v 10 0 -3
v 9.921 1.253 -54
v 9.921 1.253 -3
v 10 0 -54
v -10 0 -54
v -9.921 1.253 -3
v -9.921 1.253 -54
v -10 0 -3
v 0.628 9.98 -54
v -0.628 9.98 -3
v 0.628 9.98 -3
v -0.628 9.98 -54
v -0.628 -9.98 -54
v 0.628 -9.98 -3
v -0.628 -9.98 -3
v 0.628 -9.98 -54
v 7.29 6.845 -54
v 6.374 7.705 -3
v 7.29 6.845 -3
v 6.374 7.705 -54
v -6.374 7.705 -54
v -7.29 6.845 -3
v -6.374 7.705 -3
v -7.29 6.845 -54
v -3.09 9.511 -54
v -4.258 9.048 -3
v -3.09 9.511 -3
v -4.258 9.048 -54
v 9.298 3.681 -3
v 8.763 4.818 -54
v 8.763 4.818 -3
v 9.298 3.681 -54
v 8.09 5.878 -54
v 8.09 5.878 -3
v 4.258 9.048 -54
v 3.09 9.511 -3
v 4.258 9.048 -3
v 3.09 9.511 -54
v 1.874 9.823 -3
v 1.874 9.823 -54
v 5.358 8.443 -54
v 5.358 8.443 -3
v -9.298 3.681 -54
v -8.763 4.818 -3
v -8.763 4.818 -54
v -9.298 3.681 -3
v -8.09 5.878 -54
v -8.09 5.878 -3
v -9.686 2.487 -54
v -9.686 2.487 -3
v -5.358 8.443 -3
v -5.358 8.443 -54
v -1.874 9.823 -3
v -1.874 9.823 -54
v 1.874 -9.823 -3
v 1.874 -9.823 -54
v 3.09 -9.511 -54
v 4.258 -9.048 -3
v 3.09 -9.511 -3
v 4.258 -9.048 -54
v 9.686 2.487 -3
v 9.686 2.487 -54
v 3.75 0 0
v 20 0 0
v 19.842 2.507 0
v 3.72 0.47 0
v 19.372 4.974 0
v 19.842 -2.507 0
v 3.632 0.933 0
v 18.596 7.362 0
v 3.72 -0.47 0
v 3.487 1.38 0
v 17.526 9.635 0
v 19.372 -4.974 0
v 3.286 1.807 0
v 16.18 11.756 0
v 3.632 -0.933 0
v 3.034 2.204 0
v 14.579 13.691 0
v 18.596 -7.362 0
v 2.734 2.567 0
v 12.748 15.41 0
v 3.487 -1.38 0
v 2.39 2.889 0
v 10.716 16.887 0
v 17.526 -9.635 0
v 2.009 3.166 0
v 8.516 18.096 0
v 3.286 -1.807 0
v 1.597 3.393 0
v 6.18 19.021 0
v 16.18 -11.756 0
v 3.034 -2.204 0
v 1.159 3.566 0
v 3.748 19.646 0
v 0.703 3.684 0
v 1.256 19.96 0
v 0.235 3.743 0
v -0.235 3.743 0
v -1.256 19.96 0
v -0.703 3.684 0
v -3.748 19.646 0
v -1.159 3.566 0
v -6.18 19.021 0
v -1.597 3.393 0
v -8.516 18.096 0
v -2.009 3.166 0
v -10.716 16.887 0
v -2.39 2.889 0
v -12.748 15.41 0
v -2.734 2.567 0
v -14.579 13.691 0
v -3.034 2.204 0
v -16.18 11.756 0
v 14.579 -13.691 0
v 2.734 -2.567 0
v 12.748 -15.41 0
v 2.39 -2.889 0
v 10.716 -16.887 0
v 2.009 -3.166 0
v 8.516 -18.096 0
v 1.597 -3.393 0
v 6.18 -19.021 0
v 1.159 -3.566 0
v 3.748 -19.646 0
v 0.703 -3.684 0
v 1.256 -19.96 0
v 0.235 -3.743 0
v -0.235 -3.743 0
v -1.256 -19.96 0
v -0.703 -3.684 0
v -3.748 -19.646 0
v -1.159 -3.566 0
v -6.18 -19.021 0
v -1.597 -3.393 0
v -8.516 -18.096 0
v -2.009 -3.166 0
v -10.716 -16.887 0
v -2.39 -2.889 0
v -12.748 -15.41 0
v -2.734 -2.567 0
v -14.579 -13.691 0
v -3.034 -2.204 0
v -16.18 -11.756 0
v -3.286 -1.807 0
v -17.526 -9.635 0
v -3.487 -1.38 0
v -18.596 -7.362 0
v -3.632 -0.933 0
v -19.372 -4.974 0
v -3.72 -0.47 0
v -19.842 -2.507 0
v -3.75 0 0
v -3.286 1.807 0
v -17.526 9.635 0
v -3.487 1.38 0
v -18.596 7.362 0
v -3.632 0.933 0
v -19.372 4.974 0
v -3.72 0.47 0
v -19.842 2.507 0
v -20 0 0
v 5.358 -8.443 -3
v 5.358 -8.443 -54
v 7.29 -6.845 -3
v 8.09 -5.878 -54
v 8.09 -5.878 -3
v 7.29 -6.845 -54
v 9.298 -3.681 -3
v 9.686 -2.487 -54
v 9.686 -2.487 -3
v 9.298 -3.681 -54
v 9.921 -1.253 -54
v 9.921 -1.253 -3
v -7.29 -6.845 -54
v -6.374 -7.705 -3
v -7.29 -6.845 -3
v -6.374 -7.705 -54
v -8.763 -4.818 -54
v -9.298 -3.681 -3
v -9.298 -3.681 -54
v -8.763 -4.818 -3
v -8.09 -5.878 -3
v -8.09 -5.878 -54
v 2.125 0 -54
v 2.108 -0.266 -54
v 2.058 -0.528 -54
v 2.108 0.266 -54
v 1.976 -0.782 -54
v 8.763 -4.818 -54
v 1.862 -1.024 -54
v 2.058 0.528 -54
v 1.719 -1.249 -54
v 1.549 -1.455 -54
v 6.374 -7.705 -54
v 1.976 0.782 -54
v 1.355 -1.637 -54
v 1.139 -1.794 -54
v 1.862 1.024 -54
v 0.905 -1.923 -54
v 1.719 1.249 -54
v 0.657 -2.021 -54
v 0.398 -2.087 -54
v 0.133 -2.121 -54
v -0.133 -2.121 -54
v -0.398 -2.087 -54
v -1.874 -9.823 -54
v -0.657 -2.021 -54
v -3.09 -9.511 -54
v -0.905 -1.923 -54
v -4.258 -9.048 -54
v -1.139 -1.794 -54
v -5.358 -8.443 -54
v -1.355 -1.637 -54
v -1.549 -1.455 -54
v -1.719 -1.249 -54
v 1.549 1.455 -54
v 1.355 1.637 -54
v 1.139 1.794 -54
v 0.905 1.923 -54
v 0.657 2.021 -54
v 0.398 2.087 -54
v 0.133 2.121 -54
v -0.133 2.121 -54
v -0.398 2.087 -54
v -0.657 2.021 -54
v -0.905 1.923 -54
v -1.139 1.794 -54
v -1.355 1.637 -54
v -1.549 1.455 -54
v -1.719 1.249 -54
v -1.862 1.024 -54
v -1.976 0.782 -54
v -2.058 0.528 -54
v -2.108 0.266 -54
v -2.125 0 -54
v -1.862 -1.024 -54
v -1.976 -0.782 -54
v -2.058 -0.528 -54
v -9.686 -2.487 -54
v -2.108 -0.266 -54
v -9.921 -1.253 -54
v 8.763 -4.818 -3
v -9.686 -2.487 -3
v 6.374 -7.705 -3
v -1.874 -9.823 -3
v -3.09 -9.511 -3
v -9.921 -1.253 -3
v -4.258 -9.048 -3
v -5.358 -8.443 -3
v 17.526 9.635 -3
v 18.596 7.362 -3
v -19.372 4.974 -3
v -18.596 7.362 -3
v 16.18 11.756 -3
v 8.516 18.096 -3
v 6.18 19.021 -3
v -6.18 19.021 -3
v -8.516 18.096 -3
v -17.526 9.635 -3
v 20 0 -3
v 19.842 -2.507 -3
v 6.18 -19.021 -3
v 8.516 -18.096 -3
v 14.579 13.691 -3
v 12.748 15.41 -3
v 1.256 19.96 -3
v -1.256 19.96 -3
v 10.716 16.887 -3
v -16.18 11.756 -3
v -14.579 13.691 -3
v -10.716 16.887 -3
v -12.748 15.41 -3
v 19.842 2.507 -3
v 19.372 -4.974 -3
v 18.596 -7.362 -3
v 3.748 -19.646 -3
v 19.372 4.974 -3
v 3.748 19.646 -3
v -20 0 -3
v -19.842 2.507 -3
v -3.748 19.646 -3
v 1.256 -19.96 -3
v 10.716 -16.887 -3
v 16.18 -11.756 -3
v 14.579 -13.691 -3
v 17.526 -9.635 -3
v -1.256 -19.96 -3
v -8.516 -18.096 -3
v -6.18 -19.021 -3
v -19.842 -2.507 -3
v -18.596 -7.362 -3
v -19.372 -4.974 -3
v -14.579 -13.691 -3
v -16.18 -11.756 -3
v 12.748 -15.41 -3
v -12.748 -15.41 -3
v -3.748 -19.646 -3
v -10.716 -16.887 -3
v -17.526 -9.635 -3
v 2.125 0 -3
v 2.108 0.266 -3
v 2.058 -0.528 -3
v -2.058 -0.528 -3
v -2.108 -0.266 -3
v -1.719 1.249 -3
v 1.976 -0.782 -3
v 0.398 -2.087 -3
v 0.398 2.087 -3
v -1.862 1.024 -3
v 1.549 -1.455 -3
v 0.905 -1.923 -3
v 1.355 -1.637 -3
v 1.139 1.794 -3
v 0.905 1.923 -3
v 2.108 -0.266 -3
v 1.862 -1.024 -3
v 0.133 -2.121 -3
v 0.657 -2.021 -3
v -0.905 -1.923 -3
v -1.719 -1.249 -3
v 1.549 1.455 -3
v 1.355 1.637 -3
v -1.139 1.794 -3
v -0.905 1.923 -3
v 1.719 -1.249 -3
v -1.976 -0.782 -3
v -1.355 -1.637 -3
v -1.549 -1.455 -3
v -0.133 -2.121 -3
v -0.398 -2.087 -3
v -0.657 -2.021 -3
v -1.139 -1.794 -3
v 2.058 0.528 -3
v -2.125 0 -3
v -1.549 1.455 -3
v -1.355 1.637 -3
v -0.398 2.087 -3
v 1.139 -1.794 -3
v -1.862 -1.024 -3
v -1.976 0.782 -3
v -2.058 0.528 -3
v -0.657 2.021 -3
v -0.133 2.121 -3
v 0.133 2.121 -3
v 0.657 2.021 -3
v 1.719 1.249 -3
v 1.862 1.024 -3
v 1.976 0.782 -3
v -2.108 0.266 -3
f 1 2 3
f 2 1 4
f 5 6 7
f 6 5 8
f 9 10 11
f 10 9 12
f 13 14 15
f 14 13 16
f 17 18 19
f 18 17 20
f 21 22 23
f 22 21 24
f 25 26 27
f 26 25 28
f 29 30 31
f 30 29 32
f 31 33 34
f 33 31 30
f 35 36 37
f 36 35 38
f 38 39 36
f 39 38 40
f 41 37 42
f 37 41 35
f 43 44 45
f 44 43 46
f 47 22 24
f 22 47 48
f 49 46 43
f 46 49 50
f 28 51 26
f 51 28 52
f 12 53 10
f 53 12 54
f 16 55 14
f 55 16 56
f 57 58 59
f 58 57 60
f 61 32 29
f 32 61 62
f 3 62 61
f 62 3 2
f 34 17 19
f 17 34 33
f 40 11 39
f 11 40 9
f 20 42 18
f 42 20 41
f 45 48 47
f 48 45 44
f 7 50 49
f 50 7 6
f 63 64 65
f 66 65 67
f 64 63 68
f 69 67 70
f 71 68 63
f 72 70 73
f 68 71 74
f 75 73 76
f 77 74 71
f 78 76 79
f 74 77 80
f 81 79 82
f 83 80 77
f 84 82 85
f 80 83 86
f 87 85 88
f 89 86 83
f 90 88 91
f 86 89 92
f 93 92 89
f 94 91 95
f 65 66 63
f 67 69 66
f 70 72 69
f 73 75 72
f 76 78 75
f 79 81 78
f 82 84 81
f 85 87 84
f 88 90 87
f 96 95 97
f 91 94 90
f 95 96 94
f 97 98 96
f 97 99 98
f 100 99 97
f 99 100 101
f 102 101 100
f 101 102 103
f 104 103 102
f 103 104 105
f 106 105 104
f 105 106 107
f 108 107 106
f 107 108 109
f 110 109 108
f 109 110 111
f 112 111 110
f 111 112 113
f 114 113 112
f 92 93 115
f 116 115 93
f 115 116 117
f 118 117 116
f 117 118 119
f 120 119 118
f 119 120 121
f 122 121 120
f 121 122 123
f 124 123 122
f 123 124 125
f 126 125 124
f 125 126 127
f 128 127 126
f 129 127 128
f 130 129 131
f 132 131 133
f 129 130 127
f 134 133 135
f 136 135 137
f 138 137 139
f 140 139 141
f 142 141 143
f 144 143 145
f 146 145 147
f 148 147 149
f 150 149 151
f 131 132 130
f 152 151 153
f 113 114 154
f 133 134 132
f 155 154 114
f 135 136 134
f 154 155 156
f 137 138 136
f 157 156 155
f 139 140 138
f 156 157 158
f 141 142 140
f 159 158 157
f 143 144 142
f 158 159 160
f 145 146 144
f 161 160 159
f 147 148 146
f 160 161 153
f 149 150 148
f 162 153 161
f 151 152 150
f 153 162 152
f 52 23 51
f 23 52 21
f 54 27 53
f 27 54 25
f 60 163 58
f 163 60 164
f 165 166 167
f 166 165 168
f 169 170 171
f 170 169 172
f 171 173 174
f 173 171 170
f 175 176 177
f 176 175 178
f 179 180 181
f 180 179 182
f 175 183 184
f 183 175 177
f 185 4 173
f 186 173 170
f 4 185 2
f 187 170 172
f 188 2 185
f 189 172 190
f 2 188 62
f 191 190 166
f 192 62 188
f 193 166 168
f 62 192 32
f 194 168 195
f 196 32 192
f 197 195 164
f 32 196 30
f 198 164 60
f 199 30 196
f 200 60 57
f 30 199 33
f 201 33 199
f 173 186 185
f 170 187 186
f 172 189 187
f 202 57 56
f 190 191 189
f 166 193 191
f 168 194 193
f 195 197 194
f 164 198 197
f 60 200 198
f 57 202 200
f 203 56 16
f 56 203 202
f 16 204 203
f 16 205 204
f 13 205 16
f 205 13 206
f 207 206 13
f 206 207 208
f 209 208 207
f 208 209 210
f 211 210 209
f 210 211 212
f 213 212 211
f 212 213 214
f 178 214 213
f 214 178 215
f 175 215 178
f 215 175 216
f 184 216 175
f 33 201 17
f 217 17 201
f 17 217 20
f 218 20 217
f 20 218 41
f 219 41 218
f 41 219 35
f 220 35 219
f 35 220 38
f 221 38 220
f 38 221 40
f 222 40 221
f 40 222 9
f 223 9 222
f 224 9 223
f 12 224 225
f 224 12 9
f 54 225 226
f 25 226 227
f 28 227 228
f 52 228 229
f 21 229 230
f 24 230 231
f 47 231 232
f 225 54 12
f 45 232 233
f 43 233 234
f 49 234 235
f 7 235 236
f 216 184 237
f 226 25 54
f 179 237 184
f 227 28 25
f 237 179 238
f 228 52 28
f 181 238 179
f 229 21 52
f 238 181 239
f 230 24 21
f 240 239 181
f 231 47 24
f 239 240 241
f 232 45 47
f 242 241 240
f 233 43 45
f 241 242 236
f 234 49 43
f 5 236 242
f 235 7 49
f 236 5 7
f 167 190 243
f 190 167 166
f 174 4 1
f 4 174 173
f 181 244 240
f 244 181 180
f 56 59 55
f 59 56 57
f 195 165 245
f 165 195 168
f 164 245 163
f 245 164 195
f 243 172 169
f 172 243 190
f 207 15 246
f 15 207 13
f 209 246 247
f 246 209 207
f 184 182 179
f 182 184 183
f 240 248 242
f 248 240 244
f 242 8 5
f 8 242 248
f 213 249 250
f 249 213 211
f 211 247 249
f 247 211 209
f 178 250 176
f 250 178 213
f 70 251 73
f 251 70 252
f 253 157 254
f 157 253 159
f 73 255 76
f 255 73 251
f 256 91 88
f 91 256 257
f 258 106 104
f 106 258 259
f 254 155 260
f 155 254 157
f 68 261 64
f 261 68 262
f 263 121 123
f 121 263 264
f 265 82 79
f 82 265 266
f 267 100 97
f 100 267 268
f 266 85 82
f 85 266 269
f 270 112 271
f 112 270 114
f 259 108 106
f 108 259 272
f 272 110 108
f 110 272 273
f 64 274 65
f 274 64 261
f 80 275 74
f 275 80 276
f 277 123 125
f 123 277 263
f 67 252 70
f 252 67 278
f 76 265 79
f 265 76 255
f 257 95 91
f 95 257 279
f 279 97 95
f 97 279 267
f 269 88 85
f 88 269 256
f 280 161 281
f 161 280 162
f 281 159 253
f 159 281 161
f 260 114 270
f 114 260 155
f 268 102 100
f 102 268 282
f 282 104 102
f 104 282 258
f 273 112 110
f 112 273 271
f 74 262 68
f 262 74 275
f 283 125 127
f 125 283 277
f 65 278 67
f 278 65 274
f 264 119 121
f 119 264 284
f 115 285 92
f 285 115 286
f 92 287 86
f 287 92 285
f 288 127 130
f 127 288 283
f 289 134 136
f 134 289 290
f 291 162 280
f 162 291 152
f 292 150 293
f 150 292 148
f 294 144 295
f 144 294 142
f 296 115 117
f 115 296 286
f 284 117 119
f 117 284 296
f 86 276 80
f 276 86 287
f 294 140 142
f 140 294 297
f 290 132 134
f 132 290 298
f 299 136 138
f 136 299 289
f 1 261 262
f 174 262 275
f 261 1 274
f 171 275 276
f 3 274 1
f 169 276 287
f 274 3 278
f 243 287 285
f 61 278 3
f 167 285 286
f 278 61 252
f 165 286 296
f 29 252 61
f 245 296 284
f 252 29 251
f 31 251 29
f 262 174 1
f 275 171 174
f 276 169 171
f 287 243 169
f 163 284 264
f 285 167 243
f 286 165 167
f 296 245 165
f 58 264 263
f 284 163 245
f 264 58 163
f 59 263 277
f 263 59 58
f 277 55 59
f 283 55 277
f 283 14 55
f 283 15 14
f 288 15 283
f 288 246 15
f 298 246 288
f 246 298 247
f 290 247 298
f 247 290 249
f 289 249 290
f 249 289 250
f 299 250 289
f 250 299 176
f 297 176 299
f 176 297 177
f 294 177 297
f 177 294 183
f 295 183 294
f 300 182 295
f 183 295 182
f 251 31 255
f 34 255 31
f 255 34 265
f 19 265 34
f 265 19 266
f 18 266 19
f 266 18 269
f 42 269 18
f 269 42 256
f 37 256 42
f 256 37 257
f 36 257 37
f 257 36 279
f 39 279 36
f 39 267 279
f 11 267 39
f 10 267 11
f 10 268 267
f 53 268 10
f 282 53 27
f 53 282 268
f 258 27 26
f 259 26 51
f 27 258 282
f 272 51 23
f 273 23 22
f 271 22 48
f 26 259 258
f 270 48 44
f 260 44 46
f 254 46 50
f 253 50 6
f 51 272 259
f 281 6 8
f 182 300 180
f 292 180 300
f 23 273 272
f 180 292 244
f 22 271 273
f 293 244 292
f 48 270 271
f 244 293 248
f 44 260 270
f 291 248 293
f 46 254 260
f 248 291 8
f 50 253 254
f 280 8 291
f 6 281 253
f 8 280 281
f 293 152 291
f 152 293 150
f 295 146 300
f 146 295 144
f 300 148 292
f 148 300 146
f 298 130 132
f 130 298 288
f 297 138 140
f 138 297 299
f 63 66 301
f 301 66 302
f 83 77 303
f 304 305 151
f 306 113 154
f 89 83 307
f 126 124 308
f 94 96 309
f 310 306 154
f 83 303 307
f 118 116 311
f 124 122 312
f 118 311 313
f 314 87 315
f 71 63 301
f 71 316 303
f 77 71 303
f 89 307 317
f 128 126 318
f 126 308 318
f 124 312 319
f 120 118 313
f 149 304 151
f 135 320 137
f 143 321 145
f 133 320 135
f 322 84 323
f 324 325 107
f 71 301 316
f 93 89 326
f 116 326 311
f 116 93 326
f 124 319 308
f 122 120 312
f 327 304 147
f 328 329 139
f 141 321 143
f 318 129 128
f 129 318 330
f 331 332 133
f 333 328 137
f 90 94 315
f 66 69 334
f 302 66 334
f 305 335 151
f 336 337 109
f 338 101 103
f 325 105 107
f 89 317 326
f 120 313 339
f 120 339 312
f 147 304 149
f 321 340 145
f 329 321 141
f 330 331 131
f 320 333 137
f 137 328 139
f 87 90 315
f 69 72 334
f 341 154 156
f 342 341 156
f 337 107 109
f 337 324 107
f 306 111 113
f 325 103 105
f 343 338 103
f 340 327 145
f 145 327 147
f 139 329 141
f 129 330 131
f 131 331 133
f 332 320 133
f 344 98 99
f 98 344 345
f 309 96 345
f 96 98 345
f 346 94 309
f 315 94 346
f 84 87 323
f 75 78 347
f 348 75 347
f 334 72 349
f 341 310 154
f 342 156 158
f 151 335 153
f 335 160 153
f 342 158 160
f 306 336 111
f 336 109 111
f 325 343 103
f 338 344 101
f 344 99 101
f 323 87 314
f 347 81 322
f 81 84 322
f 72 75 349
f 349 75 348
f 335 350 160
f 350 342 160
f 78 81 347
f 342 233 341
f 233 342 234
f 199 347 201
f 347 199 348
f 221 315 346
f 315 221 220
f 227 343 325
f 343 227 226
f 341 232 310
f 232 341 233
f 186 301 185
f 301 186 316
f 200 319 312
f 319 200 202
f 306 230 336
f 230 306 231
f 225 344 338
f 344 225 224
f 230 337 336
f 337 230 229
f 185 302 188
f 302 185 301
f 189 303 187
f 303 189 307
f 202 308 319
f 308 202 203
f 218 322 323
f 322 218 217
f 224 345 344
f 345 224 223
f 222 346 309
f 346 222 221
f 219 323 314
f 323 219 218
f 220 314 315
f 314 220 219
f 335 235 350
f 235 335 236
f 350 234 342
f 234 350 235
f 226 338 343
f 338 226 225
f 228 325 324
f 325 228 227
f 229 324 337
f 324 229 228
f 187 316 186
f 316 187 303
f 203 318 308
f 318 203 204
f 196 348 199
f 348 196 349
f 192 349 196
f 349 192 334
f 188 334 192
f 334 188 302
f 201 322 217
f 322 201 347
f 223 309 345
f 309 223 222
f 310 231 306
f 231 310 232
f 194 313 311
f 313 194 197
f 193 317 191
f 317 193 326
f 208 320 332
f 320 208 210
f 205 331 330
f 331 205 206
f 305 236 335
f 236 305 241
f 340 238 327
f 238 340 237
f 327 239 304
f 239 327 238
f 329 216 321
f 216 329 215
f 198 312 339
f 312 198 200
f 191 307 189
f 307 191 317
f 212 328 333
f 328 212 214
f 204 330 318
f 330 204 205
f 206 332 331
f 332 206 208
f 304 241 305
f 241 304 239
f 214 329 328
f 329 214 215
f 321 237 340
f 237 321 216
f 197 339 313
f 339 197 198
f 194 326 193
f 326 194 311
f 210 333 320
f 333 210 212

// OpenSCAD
$fn = 50;


difference() {
	union() {
		translate(v = [0, 0, -54.0000000000]) {
			cylinder(h = 54, r = 10.0000000000);
		}
		translate(v = [0, 0, -3.0000000000]) {
			cylinder(h = 3, r = 20.0000000000);
		}
	}
	union() {
		translate(v = [0, 0, 0]) {
			rotate(a = [0, 0, 0]) {
				difference() {
					union() {
						#translate(v = [0, 0, -54.0000000000]) {
							cylinder(h = 54, r = 2.0000000000);
						}
						#translate(v = [0, 0, -3]) {
							cylinder(h = 3, r = 10.0000000000, r1 = 2.1250000000, r2 = 3.7500000000);
						}
						#translate(v = [0, 0, -54.0000000000]) {
							cylinder(h = 54, r = 2.1250000000);
						}
						#translate(v = [0, 0, -54.0000000000]) {
							cylinder(h = 54, r = 2.0000000000);
						}
					}
					union();
				}
			}
		}
	}
}
